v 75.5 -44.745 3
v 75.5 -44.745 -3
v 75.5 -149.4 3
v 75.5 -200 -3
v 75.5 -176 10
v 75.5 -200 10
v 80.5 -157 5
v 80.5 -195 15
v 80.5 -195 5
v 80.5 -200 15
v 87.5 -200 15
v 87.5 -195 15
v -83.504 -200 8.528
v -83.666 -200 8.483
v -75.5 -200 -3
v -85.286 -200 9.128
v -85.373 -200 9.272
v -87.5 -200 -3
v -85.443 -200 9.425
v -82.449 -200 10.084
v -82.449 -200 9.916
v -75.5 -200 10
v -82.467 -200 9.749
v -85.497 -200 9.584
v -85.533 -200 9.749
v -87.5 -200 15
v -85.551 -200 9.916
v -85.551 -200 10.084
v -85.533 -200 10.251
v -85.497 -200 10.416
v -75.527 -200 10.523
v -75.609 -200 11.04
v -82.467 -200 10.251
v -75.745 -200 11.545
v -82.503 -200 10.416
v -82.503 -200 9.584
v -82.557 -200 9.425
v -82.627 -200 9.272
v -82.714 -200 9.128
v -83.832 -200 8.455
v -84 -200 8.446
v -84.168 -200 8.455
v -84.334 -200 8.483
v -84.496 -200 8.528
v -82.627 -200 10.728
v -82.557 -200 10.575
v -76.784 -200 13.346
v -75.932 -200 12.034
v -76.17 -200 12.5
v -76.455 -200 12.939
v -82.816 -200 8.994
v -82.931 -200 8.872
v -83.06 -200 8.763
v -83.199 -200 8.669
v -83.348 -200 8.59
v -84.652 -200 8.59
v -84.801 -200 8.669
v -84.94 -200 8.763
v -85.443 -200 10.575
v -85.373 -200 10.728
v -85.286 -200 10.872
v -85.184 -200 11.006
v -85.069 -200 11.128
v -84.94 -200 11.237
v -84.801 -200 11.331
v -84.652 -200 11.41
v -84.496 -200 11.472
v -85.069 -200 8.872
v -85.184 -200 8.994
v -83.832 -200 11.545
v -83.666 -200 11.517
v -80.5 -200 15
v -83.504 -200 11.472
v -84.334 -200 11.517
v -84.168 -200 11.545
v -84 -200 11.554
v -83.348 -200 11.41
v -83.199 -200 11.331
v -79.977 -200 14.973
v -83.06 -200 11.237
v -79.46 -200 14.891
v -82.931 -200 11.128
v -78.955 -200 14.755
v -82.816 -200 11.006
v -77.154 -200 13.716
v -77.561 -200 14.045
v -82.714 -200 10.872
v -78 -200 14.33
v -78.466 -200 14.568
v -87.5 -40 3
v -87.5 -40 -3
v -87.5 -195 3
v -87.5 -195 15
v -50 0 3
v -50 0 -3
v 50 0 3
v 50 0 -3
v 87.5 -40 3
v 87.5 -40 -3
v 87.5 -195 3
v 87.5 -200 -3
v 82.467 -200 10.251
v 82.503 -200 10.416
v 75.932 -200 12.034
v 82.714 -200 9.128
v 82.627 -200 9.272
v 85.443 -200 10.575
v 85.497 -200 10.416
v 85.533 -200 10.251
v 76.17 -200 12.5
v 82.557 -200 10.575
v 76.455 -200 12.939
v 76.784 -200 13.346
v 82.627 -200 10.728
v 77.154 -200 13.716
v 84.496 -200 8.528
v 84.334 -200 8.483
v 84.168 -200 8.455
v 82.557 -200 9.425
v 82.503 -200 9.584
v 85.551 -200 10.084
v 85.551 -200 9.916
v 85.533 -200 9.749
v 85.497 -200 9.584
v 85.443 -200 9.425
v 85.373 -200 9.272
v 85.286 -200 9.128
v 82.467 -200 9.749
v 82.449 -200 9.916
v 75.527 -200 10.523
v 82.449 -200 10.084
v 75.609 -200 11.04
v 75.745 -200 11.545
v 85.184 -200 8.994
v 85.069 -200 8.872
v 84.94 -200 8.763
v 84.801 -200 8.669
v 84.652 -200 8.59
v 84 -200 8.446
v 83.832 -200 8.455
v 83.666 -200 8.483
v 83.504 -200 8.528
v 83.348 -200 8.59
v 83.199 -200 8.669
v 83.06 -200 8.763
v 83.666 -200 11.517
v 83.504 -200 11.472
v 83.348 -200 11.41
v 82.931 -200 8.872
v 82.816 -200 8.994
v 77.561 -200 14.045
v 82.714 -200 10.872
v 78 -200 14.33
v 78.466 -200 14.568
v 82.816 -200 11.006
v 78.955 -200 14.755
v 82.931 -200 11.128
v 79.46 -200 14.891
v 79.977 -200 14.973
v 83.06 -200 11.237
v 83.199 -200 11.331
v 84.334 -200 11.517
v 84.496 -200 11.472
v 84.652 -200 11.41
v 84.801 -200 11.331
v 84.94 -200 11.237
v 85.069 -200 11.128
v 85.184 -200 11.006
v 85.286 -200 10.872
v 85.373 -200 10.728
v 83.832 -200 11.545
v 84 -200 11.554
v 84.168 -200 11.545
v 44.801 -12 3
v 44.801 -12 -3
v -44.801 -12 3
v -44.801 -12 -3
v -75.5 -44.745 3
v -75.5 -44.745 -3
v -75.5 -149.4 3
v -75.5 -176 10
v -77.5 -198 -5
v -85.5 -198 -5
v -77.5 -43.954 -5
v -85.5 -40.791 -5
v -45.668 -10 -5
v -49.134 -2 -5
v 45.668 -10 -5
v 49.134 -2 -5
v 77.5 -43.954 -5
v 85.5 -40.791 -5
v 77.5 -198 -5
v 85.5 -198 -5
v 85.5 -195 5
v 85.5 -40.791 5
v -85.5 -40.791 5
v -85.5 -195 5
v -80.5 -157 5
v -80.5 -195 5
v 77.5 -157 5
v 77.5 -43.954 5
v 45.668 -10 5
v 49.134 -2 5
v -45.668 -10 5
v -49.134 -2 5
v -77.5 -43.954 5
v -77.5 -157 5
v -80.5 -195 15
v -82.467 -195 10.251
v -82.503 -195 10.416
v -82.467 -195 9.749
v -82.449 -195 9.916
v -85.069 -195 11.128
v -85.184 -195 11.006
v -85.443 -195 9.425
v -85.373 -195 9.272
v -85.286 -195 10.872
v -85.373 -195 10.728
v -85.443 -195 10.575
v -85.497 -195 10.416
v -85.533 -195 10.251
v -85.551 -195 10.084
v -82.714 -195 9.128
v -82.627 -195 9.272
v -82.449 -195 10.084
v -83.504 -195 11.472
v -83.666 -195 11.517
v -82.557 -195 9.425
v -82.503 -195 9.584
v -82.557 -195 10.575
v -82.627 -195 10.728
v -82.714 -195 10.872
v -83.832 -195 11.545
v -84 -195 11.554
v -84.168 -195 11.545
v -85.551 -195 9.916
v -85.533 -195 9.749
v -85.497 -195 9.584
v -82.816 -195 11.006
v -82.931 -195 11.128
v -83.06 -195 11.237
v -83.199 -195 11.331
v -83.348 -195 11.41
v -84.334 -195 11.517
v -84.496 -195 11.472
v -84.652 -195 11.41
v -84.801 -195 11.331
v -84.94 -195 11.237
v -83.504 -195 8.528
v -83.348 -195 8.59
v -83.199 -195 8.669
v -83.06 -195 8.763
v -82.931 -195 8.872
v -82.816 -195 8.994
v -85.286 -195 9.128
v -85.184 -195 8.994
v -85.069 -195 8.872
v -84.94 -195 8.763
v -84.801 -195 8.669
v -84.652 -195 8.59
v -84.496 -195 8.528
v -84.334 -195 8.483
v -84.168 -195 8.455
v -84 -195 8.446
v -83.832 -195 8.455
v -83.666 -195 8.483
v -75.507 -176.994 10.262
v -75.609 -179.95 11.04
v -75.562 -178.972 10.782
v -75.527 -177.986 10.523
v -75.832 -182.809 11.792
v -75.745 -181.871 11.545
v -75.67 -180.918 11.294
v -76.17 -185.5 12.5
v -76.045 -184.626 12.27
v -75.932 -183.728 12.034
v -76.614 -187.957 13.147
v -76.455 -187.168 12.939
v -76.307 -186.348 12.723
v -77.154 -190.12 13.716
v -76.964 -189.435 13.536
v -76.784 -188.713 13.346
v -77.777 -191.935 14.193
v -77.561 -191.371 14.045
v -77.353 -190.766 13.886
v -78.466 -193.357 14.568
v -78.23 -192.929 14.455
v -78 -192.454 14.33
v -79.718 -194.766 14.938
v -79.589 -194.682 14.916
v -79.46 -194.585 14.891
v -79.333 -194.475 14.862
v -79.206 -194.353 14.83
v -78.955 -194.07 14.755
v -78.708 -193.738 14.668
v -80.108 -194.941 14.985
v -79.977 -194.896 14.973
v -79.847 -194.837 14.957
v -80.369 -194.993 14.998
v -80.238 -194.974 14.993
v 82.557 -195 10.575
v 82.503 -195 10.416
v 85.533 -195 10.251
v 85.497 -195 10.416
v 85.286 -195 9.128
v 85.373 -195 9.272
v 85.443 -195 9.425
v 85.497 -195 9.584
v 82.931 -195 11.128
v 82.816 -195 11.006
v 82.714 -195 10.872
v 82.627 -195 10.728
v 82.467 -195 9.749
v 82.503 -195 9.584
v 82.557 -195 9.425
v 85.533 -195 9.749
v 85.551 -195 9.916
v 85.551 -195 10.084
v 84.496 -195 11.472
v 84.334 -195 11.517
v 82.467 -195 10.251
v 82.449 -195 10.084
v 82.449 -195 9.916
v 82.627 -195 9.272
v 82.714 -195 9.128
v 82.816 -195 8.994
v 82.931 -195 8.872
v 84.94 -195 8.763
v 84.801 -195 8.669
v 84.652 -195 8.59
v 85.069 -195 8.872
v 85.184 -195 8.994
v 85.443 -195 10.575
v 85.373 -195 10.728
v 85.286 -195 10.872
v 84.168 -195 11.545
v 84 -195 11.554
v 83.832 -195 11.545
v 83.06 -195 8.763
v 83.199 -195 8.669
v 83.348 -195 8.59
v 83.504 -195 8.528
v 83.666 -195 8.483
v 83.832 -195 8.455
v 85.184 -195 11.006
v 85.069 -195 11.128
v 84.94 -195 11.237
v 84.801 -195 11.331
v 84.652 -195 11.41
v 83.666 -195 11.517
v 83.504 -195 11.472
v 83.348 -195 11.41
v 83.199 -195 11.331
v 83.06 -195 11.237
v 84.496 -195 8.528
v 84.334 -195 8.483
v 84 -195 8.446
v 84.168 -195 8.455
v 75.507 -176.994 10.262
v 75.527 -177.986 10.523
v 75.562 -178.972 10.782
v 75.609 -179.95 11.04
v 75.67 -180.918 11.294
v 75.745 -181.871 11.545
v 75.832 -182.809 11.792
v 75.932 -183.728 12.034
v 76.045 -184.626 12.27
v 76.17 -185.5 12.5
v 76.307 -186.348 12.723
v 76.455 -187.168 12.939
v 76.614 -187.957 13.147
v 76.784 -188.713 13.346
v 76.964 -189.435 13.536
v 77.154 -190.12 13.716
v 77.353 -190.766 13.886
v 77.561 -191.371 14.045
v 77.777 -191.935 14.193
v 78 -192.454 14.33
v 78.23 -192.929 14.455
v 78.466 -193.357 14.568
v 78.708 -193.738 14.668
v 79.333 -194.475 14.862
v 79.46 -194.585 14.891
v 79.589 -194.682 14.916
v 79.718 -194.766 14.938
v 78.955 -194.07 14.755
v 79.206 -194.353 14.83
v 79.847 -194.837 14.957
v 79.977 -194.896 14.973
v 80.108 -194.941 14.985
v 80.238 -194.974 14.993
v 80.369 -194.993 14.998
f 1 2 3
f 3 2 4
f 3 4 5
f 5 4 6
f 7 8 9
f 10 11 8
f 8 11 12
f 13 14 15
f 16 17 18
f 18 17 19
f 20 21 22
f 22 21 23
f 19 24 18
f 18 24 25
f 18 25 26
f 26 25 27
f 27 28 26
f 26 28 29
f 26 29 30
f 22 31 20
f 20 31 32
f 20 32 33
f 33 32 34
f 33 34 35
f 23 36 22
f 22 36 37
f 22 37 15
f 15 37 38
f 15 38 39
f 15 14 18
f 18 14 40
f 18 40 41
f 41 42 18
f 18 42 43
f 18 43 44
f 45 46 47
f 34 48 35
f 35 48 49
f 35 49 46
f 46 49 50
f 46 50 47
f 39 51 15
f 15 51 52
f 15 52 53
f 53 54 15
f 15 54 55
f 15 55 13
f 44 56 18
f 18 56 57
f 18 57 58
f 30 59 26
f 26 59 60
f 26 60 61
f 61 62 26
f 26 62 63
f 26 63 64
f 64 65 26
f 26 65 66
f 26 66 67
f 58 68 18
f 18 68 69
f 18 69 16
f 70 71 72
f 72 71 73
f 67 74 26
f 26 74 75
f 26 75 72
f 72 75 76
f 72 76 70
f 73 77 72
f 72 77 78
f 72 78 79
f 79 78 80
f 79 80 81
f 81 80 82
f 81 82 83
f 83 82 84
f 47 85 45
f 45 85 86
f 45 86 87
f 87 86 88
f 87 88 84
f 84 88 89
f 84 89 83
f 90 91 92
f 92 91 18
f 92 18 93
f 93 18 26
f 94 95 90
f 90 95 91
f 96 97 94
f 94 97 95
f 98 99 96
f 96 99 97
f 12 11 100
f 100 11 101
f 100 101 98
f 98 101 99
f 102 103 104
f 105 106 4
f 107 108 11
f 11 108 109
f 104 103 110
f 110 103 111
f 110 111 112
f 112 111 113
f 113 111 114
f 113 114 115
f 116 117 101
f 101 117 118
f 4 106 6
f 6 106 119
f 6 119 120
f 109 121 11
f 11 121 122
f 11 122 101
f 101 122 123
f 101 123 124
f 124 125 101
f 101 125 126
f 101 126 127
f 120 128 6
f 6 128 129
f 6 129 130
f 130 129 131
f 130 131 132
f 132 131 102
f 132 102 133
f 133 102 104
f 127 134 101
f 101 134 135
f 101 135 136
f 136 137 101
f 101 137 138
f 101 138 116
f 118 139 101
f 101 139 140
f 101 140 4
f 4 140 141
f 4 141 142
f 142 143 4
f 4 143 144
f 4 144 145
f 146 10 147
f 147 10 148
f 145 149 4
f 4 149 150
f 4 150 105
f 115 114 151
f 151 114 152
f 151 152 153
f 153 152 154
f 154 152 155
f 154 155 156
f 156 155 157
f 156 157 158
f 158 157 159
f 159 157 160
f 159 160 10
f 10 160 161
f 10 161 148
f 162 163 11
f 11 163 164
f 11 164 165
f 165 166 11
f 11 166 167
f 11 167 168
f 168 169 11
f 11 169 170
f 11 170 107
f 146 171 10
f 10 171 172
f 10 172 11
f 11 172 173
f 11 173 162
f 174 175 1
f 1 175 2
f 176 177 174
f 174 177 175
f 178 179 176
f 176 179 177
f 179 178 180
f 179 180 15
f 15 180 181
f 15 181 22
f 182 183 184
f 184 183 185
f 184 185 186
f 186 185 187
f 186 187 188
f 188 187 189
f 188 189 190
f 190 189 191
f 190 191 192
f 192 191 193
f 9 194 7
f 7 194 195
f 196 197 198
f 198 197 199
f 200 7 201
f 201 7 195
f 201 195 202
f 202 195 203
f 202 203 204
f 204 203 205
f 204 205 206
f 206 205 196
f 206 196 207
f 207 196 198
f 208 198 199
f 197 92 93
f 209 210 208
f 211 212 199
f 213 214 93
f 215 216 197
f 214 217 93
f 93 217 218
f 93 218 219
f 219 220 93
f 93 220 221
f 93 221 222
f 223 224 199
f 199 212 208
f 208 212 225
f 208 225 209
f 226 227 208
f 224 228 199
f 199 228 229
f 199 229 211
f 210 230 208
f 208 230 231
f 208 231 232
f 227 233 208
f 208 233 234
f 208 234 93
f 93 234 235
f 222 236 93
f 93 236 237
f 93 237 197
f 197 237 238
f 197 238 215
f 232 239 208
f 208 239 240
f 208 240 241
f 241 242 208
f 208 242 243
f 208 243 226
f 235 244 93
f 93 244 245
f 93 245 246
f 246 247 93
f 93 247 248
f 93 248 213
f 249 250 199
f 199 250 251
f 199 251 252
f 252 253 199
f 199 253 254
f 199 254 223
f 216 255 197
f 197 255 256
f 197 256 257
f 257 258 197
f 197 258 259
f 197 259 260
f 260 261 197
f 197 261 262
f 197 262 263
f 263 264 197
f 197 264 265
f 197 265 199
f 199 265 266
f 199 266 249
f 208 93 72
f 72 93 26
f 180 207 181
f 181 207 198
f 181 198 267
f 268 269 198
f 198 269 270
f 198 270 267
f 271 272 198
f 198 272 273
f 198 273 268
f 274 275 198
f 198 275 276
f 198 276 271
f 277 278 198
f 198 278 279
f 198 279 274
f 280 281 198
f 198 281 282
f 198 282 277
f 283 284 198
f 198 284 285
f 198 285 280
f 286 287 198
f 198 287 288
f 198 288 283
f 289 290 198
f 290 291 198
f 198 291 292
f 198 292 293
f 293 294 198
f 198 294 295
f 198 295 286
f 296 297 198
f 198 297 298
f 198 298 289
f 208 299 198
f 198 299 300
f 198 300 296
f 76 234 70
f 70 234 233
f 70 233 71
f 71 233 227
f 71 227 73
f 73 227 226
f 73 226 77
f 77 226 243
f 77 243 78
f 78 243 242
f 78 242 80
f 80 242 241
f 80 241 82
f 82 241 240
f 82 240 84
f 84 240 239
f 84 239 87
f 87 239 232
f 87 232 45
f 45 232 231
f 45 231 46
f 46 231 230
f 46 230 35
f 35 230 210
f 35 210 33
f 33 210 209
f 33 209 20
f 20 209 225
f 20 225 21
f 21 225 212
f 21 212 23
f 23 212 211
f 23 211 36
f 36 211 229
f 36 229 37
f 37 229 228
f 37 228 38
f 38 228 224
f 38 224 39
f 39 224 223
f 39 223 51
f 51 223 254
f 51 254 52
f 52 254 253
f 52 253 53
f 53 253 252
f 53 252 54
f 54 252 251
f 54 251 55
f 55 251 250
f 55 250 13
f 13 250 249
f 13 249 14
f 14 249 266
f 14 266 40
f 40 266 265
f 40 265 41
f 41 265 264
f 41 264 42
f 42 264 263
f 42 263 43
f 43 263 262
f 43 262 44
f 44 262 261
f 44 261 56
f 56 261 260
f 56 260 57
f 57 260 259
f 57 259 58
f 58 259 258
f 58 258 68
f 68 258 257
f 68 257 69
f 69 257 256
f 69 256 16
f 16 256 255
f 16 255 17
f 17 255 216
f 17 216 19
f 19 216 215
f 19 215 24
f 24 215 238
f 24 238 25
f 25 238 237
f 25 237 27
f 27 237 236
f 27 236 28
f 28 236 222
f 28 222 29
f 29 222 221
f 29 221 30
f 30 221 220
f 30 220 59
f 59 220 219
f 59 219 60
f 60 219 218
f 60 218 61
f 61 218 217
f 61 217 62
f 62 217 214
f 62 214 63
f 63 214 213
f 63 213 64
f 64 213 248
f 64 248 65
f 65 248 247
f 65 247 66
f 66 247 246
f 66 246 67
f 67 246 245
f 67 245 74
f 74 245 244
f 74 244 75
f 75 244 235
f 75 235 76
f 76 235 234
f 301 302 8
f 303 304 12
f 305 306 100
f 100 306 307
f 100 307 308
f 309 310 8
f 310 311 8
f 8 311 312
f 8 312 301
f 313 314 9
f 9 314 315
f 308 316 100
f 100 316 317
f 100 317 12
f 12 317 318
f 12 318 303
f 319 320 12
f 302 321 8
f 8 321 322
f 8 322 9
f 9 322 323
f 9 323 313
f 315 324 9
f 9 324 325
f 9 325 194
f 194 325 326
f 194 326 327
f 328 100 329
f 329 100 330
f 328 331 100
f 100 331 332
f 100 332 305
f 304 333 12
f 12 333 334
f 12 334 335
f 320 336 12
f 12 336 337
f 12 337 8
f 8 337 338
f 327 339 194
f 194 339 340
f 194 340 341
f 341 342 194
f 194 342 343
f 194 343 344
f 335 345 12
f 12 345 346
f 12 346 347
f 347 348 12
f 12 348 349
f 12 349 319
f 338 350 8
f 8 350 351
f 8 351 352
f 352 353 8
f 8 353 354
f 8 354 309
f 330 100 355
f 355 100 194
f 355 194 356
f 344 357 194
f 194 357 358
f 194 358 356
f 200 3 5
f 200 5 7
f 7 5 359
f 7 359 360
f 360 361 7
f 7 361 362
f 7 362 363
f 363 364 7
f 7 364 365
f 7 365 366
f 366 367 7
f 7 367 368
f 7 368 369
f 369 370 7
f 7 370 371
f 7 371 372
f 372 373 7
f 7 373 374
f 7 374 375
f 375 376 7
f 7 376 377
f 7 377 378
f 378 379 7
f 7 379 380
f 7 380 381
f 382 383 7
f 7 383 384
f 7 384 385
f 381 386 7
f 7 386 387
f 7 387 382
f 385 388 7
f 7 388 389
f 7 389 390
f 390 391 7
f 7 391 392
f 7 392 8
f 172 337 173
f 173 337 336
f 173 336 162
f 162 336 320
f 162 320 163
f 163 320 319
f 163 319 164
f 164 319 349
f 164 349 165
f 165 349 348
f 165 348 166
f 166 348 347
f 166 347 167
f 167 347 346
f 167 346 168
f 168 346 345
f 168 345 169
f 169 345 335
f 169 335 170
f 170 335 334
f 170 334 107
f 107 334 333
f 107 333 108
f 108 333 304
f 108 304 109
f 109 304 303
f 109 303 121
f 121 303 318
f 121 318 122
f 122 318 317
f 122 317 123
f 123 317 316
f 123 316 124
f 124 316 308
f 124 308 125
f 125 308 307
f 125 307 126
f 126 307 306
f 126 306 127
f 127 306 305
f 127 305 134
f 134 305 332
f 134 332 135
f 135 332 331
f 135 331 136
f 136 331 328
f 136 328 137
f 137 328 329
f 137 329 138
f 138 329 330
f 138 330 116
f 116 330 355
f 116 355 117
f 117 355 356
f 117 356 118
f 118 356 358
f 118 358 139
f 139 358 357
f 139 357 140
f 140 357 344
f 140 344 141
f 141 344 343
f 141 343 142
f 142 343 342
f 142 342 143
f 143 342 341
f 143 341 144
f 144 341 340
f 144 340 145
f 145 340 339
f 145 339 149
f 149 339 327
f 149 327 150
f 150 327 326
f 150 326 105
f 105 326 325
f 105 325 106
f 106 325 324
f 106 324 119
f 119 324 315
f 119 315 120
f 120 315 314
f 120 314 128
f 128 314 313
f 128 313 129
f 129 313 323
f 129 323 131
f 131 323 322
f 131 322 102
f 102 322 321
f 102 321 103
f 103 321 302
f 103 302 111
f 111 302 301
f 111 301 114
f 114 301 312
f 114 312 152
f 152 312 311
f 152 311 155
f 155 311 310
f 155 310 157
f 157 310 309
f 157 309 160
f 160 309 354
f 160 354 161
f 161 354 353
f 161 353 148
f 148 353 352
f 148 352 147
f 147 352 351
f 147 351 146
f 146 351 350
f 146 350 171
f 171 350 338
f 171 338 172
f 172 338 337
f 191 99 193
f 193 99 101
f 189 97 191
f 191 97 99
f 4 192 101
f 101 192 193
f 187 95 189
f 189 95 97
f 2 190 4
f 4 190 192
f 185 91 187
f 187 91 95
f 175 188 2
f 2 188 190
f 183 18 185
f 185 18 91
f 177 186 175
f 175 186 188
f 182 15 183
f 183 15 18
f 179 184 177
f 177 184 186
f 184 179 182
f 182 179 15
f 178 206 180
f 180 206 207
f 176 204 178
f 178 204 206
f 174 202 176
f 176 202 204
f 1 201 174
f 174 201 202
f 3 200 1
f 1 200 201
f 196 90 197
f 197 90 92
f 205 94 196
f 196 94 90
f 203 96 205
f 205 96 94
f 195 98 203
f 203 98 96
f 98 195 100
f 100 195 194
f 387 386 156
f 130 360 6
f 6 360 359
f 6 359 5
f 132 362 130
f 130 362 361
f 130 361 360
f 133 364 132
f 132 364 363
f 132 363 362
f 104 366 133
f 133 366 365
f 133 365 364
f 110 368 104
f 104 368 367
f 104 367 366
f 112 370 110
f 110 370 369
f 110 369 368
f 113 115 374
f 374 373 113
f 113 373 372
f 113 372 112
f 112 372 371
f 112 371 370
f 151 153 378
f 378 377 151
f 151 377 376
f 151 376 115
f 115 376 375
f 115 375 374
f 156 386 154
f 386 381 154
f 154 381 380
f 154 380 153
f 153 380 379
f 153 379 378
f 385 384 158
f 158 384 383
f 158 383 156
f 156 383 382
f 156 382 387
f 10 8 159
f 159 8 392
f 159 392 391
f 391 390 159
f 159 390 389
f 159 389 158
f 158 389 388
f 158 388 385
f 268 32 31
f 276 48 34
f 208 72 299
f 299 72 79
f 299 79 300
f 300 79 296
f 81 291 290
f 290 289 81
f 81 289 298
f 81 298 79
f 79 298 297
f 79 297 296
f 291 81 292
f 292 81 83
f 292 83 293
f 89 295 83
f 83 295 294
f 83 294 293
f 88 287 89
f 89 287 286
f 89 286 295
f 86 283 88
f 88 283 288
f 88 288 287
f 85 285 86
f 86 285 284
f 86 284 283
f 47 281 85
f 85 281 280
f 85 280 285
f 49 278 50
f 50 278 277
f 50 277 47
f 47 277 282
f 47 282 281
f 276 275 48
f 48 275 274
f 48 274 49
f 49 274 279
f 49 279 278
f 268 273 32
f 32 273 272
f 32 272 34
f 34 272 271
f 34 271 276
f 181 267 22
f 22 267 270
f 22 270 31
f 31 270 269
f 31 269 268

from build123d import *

# Parameters (mm, degrees)
BOSS_EXTRUDE1_DEPTH      = 5
BOSS_EXTRUDE1_DEPTH_BACK = 5
BOSS_EXTRUDE2_DEPTH      = 10
CUT_EXTRUDE1_DEPTH       = 262.627597933
SKETCH4_R                = 1.553741305
CUT_EXTRUDE2_DEPTH       = 215.257438611
CHAMFER1_SIZE            = 2
CHAMFER2_SIZE            = 2
FILLET1_R                = 5


with BuildPart() as part:
    # Sketch1 → Boss-Extrude1 (new, two sides: drawn at the far end of the back side and taken through both)
    with BuildSketch(Plane.XY.offset(-BOSS_EXTRUDE1_DEPTH_BACK)):
        Polygon((-87.5, -200), (-87.5, -40), (-50, 0), (50, 0), (87.5, -40), (87.5, -200), (75.5, -200), (75.5, -44.74536976), (44.80121585, -12), (-44.80121585, -12), (-75.5, -44.74536976), (-75.5, -200), align=None)
    extrude(amount=BOSS_EXTRUDE1_DEPTH + BOSS_EXTRUDE1_DEPTH_BACK)

    # Sketch2 → Boss-Extrude2 (add)
    with BuildSketch(Plane.XY.offset(5)):
        Polygon((-87.5, -200), (-75.5, -200), (-75.5, -197), (-75.5, -157), (-80.5, -157), (-80.5, -195), (-87.5, -195), align=None)
    boss_extrude2 = extrude(amount=BOSS_EXTRUDE2_DEPTH)

    # Sketch3 → Cut-Extrude1 (cut, through all)
    with BuildSketch(Plane.ZY.offset(80.5)):
        Polygon((5, -157), (15, -195), (15, -157), align=None)
    cut_extrude1 = extrude(amount=-CUT_EXTRUDE1_DEPTH, mode=Mode.SUBTRACT)

    # Sketch4 → Cut-Extrude2 (cut, through all)
    with BuildSketch(Plane(origin=(0, -195, 0), x_dir=(1, 0, 0), z_dir=(0, 1, 0))):
        with Locations((-84, -10)):
            Circle(SKETCH4_R)
    cut_extrude2 = extrude(amount=-CUT_EXTRUDE2_DEPTH, mode=Mode.SUBTRACT)

    # Mirror1: Boss-Extrude2, Cut-Extrude1, Cut-Extrude2 across plane
    add(boss_extrude2.mirror(Plane(origin=(0, 0, 0), x_dir=(0, 0, 1), z_dir=(1, 0, 0))))
    add(cut_extrude1.mirror(Plane(origin=(0, 0, 0), x_dir=(0, 0, 1), z_dir=(1, 0, 0))), mode=Mode.SUBTRACT)
    add(cut_extrude2.mirror(Plane(origin=(0, 0, 0), x_dir=(0, 0, 1), z_dir=(1, 0, 0))), mode=Mode.SUBTRACT)

    # Chamfer1
    chamfer1_edges = [part.edges().sort_by_distance(p)[0] for p in [
        (-75.5, -122.37268488, -5),
        (-60.150607925, -28.37268488, -5),
        (0, -12, -5),
        (60.150607925, -28.37268488, -5),
        (75.5, -122.37268488, -5),
        (81.5, -200, -5),
        (87.5, -120, -5),
        (68.75, -20, -5),
        (0, 0, -5),
        (-68.75, -20, -5),
        (-87.5, -120, -5),
        (-81.5, -200, -5),
    ]]
    chamfer(chamfer1_edges, length=CHAMFER1_SIZE)

    # Chamfer2
    chamfer2_edges = [part.edges().sort_by_distance(p)[0] for p in [
        (75.5, -100.87268488, 5),
        (60.150607925, -28.37268488, 5),
        (0, -12, 5),
        (-75.5, -100.87268488, 5),
        (-60.150607925, -28.37268488, 5),
        (87.5, -117.5, 5),
        (68.75, -20, 5),
        (0, 0, 5),
        (-68.75, -20, 5),
        (-87.5, -117.5, 5),
    ]]
    chamfer(chamfer2_edges, length=CHAMFER2_SIZE)

    # Fillet1
    fillet1_edges = [part.edges().sort_by_distance(p)[0] for p in [
        (75.5, -197.5, 15),
        (-75.5, -197.5, 15),
    ]]
    fillet(fillet1_edges, radius=FILLET1_R)


solid = part.part
